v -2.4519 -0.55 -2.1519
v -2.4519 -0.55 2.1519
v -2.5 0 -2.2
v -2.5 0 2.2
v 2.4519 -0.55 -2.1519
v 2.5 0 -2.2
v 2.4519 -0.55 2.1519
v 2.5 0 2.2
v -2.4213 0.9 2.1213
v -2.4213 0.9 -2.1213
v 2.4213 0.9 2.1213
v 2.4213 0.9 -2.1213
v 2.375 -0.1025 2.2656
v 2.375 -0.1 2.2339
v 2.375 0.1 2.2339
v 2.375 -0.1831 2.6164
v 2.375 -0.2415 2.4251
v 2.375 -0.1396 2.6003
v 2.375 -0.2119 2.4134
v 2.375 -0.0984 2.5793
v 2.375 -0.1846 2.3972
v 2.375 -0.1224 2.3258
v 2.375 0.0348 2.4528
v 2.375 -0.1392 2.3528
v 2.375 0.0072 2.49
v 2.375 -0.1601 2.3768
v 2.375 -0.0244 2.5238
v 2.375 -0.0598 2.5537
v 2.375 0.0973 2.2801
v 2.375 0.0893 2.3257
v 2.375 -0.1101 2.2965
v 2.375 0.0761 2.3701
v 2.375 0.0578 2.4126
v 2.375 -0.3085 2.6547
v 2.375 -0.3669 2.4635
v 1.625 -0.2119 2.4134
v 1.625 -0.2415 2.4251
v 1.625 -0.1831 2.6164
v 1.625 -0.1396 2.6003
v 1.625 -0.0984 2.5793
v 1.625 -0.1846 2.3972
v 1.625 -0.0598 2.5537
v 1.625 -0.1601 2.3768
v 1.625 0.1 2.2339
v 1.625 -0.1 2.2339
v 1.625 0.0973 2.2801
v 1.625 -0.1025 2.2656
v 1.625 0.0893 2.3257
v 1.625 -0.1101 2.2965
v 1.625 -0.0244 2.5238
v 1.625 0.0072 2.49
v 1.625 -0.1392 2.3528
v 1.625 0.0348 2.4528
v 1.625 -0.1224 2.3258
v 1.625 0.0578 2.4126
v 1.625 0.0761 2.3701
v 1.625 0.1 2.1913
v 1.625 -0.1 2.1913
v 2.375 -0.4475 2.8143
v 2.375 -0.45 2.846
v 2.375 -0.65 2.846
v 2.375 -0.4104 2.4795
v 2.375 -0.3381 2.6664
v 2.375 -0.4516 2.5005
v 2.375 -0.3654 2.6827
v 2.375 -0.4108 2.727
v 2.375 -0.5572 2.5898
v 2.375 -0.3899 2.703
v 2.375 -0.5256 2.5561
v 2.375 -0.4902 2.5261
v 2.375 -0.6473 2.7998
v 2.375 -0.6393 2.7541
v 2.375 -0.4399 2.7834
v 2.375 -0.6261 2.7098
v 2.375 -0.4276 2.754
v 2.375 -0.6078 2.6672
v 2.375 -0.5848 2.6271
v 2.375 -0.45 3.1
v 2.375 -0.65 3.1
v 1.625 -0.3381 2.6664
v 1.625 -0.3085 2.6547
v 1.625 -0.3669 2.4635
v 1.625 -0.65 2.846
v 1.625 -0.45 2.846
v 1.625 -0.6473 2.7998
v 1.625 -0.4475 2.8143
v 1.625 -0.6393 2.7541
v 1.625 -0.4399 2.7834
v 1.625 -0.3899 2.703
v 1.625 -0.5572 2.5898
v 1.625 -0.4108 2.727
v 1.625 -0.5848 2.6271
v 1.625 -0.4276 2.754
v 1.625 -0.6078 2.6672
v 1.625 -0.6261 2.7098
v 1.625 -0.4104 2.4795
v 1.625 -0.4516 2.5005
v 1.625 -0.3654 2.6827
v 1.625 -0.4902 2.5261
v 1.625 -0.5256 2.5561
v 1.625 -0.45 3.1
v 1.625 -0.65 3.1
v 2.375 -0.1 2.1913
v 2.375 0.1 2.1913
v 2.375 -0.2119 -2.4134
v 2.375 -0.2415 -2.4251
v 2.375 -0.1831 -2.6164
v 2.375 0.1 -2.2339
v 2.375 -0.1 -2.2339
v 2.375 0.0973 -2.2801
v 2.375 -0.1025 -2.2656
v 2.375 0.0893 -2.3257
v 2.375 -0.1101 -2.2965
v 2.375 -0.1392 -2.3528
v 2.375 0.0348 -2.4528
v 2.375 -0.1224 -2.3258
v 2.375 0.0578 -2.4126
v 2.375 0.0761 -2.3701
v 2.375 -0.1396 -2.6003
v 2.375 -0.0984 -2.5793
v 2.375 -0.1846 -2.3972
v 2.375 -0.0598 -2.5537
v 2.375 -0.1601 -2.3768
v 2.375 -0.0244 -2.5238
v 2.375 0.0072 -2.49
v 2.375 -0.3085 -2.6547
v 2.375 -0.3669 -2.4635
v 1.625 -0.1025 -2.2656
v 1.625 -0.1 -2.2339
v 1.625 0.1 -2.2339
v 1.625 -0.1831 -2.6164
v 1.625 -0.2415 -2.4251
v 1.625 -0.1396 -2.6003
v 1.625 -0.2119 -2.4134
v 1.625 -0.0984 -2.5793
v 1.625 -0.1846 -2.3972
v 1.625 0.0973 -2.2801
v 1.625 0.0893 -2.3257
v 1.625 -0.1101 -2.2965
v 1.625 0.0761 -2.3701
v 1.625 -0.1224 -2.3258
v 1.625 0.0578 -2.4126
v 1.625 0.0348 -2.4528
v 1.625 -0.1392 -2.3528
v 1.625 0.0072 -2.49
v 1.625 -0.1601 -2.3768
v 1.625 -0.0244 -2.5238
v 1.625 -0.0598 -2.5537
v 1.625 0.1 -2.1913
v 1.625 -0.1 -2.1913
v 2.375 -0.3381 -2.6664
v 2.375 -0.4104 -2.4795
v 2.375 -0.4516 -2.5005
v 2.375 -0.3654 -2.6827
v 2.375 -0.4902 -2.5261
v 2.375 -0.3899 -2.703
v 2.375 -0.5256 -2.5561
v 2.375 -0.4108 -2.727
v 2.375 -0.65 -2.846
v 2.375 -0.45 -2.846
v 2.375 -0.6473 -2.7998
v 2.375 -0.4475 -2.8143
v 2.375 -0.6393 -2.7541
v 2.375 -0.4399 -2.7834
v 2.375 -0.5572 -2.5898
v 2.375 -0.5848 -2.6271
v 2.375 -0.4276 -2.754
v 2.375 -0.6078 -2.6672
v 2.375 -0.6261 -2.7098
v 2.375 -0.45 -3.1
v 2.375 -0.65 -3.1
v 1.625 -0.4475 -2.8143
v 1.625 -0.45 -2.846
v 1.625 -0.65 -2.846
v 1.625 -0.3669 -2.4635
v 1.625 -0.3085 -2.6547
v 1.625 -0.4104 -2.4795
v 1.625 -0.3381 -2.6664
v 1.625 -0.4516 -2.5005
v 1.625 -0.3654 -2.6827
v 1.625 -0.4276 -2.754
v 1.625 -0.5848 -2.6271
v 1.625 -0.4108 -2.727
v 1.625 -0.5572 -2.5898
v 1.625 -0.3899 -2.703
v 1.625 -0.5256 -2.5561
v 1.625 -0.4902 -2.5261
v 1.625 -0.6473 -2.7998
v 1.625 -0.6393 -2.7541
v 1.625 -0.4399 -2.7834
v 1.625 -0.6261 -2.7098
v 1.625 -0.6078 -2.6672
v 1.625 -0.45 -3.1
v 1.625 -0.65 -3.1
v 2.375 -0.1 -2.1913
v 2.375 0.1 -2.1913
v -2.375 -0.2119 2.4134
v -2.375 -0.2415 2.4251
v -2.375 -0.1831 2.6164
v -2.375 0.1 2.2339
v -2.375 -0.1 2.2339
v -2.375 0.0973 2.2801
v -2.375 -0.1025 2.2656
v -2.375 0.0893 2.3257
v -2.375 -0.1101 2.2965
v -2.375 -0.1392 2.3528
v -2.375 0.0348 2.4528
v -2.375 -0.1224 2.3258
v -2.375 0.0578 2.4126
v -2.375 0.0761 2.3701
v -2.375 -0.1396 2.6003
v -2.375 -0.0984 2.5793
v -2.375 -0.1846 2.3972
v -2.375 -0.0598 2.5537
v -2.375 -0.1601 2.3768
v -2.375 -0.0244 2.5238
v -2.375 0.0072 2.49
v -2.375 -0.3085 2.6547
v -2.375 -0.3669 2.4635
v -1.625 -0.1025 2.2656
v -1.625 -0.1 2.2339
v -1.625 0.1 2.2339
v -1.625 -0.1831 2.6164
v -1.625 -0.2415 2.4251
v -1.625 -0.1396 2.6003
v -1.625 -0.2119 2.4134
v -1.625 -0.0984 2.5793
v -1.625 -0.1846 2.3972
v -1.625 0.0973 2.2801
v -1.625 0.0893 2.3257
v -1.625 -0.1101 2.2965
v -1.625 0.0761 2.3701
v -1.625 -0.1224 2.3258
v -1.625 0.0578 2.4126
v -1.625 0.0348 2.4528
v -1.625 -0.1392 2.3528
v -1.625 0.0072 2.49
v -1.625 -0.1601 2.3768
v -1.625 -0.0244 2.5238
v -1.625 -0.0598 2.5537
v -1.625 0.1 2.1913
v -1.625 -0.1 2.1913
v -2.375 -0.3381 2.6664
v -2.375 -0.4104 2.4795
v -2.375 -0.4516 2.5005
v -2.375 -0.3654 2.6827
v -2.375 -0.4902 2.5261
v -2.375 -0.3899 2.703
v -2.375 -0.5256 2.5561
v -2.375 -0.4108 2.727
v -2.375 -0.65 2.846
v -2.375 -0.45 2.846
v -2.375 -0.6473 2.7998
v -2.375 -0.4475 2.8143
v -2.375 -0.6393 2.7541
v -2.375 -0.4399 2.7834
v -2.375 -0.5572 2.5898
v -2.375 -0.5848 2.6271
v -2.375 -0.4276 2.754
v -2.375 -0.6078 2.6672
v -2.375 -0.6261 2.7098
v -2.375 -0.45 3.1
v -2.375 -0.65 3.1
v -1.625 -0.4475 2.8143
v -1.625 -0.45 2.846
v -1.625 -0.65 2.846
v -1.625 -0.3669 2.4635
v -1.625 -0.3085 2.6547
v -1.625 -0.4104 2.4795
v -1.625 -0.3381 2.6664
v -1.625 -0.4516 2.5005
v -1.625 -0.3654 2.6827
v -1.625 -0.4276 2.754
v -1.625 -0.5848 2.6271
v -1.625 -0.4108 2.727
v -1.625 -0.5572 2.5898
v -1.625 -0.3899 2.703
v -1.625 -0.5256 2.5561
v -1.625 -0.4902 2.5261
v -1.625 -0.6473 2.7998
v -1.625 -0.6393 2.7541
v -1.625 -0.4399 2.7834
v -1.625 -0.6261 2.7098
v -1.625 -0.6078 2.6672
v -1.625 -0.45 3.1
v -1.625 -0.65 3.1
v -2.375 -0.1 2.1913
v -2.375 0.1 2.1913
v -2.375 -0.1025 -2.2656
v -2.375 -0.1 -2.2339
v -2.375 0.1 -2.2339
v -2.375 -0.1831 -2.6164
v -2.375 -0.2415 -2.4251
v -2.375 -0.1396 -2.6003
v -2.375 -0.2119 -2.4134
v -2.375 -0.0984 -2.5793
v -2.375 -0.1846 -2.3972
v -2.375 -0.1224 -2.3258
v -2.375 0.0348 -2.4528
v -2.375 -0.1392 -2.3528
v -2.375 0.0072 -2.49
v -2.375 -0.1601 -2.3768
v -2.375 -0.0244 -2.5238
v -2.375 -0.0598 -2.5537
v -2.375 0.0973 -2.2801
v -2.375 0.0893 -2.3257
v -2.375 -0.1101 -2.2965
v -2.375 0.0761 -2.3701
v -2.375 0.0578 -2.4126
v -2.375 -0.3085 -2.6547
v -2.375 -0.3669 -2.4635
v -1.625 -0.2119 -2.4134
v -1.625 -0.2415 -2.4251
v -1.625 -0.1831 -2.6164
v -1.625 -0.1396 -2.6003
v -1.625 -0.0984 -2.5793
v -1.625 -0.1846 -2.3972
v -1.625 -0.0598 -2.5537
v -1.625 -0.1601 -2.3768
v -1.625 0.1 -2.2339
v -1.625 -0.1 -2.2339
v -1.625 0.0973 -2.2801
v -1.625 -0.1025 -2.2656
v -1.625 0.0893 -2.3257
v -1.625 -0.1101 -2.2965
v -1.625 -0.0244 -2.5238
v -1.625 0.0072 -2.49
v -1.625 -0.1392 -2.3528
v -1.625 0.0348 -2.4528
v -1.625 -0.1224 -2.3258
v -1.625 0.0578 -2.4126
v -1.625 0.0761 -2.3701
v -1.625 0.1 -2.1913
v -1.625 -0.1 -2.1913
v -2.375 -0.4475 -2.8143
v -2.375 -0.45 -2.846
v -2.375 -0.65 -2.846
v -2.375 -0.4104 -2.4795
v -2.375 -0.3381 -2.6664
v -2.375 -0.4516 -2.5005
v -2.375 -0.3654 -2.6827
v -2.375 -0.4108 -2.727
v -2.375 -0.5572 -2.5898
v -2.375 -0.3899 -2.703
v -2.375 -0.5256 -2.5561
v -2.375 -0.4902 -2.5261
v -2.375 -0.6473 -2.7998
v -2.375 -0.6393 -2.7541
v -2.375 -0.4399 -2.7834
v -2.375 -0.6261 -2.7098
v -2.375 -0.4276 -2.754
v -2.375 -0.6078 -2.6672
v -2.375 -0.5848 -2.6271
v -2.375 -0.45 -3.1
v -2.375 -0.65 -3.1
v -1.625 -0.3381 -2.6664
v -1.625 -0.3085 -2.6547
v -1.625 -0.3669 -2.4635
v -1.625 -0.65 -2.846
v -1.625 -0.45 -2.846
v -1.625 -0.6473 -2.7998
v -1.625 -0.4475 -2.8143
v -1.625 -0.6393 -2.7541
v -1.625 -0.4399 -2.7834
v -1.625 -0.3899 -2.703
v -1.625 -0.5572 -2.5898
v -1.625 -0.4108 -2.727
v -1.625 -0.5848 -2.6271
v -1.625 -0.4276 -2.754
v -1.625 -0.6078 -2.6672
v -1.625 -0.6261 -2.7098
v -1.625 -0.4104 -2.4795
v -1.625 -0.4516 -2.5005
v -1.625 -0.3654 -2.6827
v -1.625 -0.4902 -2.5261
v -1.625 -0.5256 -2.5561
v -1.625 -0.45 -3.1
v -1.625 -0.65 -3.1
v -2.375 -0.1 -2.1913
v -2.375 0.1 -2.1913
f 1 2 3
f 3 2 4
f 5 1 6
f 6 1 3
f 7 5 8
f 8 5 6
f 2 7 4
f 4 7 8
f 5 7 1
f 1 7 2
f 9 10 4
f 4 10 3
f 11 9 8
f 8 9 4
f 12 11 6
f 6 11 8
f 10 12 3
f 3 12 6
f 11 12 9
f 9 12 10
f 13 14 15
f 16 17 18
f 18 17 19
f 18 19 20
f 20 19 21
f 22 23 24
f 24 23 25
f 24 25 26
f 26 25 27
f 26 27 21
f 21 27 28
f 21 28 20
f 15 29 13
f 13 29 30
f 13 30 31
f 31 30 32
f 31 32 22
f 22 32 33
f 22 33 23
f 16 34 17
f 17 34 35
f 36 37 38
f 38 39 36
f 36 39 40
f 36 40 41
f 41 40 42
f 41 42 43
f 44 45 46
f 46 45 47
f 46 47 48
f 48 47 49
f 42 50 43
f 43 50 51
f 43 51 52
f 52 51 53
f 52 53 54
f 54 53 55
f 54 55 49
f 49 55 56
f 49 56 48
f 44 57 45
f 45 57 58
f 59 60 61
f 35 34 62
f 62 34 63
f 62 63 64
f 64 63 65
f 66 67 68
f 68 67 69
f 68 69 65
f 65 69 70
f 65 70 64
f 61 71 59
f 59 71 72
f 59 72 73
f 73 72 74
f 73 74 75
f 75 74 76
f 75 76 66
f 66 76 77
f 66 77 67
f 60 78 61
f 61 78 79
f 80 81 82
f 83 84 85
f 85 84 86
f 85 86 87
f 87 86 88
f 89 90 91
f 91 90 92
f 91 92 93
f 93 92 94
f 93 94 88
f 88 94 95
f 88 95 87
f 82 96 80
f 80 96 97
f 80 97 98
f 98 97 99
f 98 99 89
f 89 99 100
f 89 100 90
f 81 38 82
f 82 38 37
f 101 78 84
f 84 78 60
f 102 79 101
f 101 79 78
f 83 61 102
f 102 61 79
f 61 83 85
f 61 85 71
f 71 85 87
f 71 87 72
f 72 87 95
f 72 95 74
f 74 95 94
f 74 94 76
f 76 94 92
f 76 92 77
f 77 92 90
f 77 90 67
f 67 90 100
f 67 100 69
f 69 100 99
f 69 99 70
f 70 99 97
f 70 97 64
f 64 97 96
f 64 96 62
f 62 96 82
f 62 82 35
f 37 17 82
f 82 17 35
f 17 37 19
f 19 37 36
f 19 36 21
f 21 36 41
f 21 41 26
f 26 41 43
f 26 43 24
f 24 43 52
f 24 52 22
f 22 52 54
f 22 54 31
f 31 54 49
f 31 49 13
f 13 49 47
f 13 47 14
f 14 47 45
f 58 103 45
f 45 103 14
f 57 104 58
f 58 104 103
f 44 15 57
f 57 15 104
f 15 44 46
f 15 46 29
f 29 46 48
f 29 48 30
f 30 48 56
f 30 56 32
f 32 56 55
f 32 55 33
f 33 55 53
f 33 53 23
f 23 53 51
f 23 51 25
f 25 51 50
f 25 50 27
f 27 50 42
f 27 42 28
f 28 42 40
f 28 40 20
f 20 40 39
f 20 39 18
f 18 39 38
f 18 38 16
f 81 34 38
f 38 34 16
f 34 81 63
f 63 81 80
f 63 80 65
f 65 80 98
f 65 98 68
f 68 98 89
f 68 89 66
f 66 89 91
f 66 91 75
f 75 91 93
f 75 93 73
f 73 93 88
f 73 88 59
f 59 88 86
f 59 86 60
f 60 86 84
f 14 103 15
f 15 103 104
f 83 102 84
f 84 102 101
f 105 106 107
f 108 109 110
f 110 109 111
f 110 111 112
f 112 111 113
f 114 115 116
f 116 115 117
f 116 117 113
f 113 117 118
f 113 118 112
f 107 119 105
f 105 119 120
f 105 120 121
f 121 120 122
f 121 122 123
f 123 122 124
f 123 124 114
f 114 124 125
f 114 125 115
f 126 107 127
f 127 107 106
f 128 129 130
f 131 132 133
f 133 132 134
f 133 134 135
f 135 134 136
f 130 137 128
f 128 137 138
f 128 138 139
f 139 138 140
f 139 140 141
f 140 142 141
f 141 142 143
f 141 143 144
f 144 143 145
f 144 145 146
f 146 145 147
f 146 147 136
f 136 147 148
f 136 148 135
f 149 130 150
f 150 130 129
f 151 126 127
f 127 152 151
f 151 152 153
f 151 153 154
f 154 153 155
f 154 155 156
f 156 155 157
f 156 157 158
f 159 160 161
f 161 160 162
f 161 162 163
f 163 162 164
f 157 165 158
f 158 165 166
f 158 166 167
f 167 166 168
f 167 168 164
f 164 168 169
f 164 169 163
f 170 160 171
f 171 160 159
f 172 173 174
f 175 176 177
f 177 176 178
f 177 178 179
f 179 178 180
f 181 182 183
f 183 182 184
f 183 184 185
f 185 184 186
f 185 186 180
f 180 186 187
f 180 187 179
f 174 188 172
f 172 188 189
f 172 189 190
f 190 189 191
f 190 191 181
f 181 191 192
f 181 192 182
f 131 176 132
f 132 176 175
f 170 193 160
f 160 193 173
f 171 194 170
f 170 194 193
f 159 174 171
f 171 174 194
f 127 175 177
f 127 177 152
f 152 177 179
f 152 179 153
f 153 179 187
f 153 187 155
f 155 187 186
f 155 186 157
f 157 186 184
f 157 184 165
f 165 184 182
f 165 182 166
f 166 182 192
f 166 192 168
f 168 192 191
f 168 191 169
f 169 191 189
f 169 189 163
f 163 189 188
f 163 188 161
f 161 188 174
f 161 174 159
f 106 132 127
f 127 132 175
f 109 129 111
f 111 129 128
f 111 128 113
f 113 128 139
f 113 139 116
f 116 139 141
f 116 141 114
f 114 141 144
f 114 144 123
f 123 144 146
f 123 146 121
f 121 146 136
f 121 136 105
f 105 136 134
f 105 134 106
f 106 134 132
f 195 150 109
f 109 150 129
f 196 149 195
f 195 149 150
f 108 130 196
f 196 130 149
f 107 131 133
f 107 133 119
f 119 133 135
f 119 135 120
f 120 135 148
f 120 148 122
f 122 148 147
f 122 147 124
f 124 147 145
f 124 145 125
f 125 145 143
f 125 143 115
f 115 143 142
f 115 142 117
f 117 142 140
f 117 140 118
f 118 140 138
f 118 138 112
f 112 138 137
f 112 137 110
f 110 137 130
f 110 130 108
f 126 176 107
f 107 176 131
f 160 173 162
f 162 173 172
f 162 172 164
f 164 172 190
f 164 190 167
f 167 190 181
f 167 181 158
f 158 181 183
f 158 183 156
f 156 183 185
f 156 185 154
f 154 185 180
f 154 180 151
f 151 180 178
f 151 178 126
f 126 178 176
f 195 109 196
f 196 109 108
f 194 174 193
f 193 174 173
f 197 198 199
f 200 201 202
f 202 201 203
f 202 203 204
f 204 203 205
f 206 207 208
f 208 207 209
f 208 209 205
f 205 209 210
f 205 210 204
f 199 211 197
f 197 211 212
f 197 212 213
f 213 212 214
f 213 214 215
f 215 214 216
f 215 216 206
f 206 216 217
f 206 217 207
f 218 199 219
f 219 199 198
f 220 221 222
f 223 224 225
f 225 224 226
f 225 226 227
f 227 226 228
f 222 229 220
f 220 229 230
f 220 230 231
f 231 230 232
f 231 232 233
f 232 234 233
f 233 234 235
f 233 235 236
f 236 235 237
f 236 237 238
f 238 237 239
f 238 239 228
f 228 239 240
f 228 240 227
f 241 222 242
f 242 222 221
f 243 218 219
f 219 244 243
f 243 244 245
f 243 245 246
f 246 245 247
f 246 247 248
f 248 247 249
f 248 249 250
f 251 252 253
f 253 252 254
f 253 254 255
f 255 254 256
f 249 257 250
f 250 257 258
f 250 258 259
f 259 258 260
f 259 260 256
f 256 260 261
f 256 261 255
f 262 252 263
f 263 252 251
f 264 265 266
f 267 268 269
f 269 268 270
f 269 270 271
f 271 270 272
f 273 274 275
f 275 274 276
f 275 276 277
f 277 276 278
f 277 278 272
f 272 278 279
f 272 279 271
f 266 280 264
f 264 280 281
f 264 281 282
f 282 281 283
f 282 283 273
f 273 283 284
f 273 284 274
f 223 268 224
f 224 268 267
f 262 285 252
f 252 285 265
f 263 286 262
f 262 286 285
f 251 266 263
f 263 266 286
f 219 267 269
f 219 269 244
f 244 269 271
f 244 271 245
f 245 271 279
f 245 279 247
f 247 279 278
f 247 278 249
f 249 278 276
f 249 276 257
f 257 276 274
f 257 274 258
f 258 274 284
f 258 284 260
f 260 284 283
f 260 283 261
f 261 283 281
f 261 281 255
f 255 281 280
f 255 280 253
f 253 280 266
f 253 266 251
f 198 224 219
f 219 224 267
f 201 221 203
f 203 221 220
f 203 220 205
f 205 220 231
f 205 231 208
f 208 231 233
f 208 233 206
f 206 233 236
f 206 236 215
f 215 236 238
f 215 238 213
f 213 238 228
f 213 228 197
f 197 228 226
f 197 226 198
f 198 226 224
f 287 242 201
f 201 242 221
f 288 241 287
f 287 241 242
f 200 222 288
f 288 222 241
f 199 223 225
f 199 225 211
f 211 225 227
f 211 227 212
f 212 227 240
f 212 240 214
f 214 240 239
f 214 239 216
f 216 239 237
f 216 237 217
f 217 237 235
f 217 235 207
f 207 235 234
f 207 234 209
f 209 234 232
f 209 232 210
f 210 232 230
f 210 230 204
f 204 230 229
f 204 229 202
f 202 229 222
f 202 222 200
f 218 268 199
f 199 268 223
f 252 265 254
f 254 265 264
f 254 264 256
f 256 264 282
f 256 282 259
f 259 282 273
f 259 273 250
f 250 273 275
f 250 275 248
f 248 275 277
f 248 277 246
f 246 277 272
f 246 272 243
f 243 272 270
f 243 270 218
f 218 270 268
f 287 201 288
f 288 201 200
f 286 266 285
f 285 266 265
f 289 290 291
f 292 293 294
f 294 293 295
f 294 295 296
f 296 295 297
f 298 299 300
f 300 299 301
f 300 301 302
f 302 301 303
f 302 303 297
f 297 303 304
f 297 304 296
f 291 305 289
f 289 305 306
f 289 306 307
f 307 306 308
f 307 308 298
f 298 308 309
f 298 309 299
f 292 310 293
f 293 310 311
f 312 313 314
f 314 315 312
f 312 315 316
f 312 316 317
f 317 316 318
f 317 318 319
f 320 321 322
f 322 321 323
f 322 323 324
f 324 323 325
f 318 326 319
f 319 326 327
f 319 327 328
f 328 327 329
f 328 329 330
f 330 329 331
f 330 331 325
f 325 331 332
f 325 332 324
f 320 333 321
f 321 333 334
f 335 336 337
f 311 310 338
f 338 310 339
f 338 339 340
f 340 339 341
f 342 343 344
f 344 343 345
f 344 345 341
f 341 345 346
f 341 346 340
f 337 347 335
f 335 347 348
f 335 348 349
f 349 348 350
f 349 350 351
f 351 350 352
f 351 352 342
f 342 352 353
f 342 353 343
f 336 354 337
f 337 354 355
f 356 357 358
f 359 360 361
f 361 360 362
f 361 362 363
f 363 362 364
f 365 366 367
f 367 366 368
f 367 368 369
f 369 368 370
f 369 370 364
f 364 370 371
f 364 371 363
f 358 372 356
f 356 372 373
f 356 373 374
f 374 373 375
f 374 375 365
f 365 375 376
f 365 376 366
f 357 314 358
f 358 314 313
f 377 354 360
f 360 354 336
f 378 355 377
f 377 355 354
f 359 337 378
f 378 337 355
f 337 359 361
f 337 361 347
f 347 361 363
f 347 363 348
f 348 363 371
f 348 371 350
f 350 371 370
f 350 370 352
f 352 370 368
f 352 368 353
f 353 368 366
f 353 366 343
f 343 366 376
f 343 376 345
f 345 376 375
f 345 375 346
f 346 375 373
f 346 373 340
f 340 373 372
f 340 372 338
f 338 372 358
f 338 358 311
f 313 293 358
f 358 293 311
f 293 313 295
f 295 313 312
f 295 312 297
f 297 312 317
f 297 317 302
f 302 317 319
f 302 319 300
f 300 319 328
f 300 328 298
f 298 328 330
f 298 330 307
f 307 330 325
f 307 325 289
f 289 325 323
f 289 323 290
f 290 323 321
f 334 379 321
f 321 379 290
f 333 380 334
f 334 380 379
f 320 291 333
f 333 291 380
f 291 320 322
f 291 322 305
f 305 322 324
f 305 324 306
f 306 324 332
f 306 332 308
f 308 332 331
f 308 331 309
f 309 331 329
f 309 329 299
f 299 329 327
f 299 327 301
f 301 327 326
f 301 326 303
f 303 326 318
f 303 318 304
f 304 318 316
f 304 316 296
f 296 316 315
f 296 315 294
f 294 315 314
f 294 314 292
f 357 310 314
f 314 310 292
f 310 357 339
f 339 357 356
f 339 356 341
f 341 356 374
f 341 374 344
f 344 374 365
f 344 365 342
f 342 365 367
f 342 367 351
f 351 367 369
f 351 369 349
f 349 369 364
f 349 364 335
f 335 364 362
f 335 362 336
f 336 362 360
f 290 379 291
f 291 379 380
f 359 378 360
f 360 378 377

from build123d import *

# Parameters (mm, degrees)
ESQUISSE1_W                    = 5
ESQUISSE1_H                    = 4.4
BOSS_EXTRU_1_DEPTH             = 0.9
BOSS_EXTRU_1_TAPER             = 5
BOSS_EXTRU_1_OTHER_WAY_DEPTH   = 0.55
BOSS_EXTRU_1_OTHER_WAY_TAPER   = 5
T_LE_DE_BASE_PLI_E1_DEPTH      = 0.375
T_LE_DE_BASE_PLI_E1_DEPTH_BACK = 0.375


# Sheet-metal steps are written as plain solids
with BuildPart() as part:
    # Esquisse1 → Boss.-Extru.1 (new body)
    with BuildSketch(Plane(origin=(0, 0, 0), x_dir=(1, 0, 0), z_dir=(0, 1, 0))):
        Rectangle(ESQUISSE1_W, ESQUISSE1_H)
    extrude(amount=BOSS_EXTRU_1_DEPTH, taper=BOSS_EXTRU_1_TAPER)

    # Esquisse1 → Boss.-Extru.1 other way (add)
    with BuildSketch(Plane(origin=(0, 0, 0), x_dir=(1, 0, 0), z_dir=(0, 1, 0))):
        Rectangle(ESQUISSE1_W, ESQUISSE1_H)
    extrude(amount=-BOSS_EXTRU_1_OTHER_WAY_DEPTH, taper=BOSS_EXTRU_1_OTHER_WAY_TAPER)


with BuildPart() as body_2:
    # Esquisse3 → Tôle de base pliée1 (new, two sides: drawn at the far end of the back side and taken through both)
    with BuildSketch(Plane(origin=(2, 0, 0), x_dir=(0, 0, -1), z_dir=(1, 0, 0)).offset(-T_LE_DE_BASE_PLI_E1_DEPTH_BACK)):
        with BuildLine():
            Line((-2.191251134, -0.1), (-2.23385591, -0.1))
            ThreePointArc((-2.23385591, -0.1), (-2.352820468, -0.139228628), (-2.425116861, -0.241525659))
            Line((-2.425116861, -0.241525659), (-2.463462528, -0.366948682))
            ThreePointArc((-2.463462528, -0.366948682), (-2.608055315, -0.571542744), (-2.84598443, -0.65))
            Line((-2.84598443, -0.65), (-3.1, -0.65))
            Line((-3.1, -0.65), (-3.1, -0.45))
            Line((-3.1, -0.45), (-2.84598443, -0.45))
            ThreePointArc((-2.84598443, -0.45), (-2.727019873, -0.410771372), (-2.654723479, -0.308474341))
            Line((-2.654723479, -0.308474341), (-2.616377813, -0.183051318))
            ThreePointArc((-2.616377813, -0.183051318), (-2.471785025, 0.021542744), (-2.23385591, 0.1))
            Line((-2.23385591, 0.1), (-2.191251134, 0.1))
            Line((-2.191251134, 0.1), (-2.191251134, -0.1))
        make_face()
    extrude(amount=T_LE_DE_BASE_PLI_E1_DEPTH + T_LE_DE_BASE_PLI_E1_DEPTH_BACK)


with BuildPart() as body_3:
    # Symétrie1: mirrored copy
    add(body_2.part.mirror(Plane.XY))


with BuildPart() as body_4:
    # Symétrie2: mirrored copy
    add(body_2.part.mirror(Plane(origin=(0, 0, 0), x_dir=(0, 0, 1), z_dir=(1, 0, 0))))


with BuildPart() as body_5:
    # Sym_trie2 2: mirrored copy
    add(body_3.part.mirror(Plane(origin=(0, 0, 0), x_dir=(0, 0, 1), z_dir=(1, 0, 0))))


solid = Compound([part.part, body_2.part, body_3.part, body_4.part, body_5.part])
